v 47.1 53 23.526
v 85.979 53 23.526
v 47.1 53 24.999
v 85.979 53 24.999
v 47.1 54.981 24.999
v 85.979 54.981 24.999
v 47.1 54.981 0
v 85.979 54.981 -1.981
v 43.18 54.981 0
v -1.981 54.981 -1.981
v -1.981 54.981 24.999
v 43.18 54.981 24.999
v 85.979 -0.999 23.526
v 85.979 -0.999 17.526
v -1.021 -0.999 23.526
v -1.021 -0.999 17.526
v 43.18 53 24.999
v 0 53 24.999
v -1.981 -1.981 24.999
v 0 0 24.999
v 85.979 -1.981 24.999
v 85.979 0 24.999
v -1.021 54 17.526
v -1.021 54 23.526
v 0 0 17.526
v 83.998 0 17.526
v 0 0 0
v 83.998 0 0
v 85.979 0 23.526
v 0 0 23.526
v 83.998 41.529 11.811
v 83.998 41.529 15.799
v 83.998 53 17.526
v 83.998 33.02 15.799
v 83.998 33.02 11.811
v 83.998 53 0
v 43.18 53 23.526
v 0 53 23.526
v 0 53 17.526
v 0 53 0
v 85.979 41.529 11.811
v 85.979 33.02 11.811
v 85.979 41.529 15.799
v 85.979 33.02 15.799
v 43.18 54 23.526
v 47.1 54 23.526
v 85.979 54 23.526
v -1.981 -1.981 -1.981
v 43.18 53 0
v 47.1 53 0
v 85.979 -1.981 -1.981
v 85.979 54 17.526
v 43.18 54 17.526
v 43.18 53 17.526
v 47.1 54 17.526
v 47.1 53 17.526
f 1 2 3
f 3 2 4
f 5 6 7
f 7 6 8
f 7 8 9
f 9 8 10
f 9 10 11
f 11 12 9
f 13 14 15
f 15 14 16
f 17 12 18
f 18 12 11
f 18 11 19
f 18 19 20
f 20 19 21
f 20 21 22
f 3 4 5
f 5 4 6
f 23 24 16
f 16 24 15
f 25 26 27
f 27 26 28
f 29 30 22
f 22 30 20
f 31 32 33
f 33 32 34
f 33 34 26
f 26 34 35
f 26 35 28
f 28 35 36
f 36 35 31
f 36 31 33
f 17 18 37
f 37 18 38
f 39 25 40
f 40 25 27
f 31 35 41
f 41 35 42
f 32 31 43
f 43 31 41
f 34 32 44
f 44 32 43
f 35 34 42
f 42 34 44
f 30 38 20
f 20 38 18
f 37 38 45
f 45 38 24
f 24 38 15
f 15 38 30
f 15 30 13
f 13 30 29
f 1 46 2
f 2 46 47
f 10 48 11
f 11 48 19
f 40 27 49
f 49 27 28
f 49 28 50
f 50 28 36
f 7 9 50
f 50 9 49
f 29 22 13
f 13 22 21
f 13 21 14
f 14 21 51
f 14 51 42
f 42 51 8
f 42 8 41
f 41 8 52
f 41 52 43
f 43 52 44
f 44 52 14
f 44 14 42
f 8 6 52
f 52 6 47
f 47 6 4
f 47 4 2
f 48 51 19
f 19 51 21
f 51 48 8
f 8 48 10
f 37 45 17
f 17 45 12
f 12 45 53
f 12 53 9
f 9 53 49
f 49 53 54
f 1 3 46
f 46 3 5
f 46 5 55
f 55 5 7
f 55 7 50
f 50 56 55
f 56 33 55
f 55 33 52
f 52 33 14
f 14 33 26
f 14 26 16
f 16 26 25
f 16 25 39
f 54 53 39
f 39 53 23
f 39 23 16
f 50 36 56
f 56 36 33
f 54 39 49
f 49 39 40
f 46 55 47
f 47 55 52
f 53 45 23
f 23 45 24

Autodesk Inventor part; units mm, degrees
ref_plane "YZ Plane" through (0, 0, 0) normal (1, 0, 0) x (0, 1, 0)
ref_plane "XZ Plane" through (0, 0, 0) normal (0, 1, 0) x (-1, 0, 0)
ref_plane "XY Plane" through (0, 0, 0) normal (0, 0, 1) x (1, 0, 0)
sketch "Sketch1" plane through (0, 0, 0) normal (0, 0, 1) x (1, 0, 0)
  line L0 (0, 0) -> (83.9978, 0)
  line L1 (83.9978, 0) -> (83.9978, 52.9999)
  line L2 (83.9978, 52.9999) -> (0, 52.9999)
  line L3 (0, 52.9999) -> (0, 0)
  dimension "d0" = 83.9978
  dimension "d1" = 52.9999
extrude "Extrusion1" add sketch "Sketch1" along normal blind 24.9987
shell "Shell1" thickness 1.9812 outward yes removed faces 1 at (55.9985, 17.6666, 24.9987)
sketch "Sketch2" plane through (85.979, -1.9812, -1.9812) normal (1, 0, 0) x (0, 0, -1)
  point P0 (-1.9812, 1.9812)
sketch "Sketch3" plane through (85.979, -1.9812, -1.9812) normal (1, 0, 0) x (0, 0, -1)
  line L0 (-13.7922, 43.5102) -> (-17.78, 43.5102)
  line L1 (-17.78, 43.5102) -> (-17.78, 35.0012)
  line L2 (-17.78, 35.0012) -> (-13.7922, 35.0012)
  line L3 (-13.7922, 35.0012) -> (-13.7922, 43.5102)
  point P0 (-1.9812, 1.9812)
  dimension "d5" = 3.9878
  dimension "d6" = 8.509
extrude "Extrusion2" cut sketch "Sketch3" against normal blind 22.9997
sketch "Sketch4" plane through (85.979, -1.9812, -1.9812) normal (1, 0, 0) x (0, 0, -1)
  line L0 (-19.5072, 55.9816) -> (-25.5072, 55.9816)
  line L1 (-24.5072, 0.9817) -> (-19.5072, 0.9817)
  line L2 (-19.5072, 0.9817) -> (-19.5072, 55.9816)
  line L3 (-25.5072, 55.9816) -> (-19.5072, 55.9816)
  line L4 (-19.5072, 55.9816) -> (-19.5072, 0.9817)
  line L5 (-19.5072, 0.9817) -> (-25.5072, 0.9817)
  line L6 (-25.5072, 0.9817) -> (-25.5072, 55.9816)
  point P0 (-1.9812, 1.9812)
  dimension "d9" = 5
extrude "Extrusion3" cut sketch "Sketch4" against normal blind 87.0001
sketch "Sketch5" plane through (85.979, -0.9995, 17.526) normal (0, 0, 1) x (1, 0, 0)
  point P0 (-85.979, 0.9995)
sketch "Sketch6" plane through (85.979, -1.9812, -1.9812) normal (1, 0, 0) x (0, 0, -1)
  point P0 (-1.9812, 1.9812)
  point P1 (-24.5072, 55.9816)
sketch "Sketch7" plane through (0, 0, 24.9987) normal (0, 0, 1) x (1, 0, 0)
  line L0 (83.9978, 52.9999) -> (0, 52.9999) projected
  line L1 (85.979, -1.9812) -> (85.979, 54.9811) projected
  line L2 (83.9978, 52.9999) -> (85.979, 52.9999)
  line L3 (85.979, 52.9999) -> (85.979, 0)
  line L4 (85.979, 0) -> (83.9978, 0)
  line L5 (83.9978, 0) -> (83.9978, 52.9999)
  point P0 (0, 0)
extrude "Extrusion4" cut sketch "Sketch7" against normal blind 2.0066
sketch "Sketch8" plane through (-1.9812, 54.9811, -1.9812) normal (0, 1, 0) x (1, 0, 0)
  line L0 (1.9812, -26.9799) -> (87.9602, -26.9799) projected
  line L1 (85.979, -1.9812) -> (1.9812, -1.9812) projected
  line L2 (49.0812, -26.9799) -> (45.1611, -26.9799)
  line L3 (45.1611, -26.9799) -> (45.1611, -1.9812)
  line L4 (45.1611, -1.9812) -> (49.0812, -1.9812)
  line L5 (49.0812, -1.9812) -> (49.0812, -26.9799)
extrude "Extrusion5" cut sketch "Sketch8" against normal blind 25.4
sketch "Sketch9" plane through (85.979, -1.9812, -1.9812) normal (1, 0, 0) x (0, 0, -1)
  point P0 (-1.9812, 1.9812)
properties part number "finalCase"
